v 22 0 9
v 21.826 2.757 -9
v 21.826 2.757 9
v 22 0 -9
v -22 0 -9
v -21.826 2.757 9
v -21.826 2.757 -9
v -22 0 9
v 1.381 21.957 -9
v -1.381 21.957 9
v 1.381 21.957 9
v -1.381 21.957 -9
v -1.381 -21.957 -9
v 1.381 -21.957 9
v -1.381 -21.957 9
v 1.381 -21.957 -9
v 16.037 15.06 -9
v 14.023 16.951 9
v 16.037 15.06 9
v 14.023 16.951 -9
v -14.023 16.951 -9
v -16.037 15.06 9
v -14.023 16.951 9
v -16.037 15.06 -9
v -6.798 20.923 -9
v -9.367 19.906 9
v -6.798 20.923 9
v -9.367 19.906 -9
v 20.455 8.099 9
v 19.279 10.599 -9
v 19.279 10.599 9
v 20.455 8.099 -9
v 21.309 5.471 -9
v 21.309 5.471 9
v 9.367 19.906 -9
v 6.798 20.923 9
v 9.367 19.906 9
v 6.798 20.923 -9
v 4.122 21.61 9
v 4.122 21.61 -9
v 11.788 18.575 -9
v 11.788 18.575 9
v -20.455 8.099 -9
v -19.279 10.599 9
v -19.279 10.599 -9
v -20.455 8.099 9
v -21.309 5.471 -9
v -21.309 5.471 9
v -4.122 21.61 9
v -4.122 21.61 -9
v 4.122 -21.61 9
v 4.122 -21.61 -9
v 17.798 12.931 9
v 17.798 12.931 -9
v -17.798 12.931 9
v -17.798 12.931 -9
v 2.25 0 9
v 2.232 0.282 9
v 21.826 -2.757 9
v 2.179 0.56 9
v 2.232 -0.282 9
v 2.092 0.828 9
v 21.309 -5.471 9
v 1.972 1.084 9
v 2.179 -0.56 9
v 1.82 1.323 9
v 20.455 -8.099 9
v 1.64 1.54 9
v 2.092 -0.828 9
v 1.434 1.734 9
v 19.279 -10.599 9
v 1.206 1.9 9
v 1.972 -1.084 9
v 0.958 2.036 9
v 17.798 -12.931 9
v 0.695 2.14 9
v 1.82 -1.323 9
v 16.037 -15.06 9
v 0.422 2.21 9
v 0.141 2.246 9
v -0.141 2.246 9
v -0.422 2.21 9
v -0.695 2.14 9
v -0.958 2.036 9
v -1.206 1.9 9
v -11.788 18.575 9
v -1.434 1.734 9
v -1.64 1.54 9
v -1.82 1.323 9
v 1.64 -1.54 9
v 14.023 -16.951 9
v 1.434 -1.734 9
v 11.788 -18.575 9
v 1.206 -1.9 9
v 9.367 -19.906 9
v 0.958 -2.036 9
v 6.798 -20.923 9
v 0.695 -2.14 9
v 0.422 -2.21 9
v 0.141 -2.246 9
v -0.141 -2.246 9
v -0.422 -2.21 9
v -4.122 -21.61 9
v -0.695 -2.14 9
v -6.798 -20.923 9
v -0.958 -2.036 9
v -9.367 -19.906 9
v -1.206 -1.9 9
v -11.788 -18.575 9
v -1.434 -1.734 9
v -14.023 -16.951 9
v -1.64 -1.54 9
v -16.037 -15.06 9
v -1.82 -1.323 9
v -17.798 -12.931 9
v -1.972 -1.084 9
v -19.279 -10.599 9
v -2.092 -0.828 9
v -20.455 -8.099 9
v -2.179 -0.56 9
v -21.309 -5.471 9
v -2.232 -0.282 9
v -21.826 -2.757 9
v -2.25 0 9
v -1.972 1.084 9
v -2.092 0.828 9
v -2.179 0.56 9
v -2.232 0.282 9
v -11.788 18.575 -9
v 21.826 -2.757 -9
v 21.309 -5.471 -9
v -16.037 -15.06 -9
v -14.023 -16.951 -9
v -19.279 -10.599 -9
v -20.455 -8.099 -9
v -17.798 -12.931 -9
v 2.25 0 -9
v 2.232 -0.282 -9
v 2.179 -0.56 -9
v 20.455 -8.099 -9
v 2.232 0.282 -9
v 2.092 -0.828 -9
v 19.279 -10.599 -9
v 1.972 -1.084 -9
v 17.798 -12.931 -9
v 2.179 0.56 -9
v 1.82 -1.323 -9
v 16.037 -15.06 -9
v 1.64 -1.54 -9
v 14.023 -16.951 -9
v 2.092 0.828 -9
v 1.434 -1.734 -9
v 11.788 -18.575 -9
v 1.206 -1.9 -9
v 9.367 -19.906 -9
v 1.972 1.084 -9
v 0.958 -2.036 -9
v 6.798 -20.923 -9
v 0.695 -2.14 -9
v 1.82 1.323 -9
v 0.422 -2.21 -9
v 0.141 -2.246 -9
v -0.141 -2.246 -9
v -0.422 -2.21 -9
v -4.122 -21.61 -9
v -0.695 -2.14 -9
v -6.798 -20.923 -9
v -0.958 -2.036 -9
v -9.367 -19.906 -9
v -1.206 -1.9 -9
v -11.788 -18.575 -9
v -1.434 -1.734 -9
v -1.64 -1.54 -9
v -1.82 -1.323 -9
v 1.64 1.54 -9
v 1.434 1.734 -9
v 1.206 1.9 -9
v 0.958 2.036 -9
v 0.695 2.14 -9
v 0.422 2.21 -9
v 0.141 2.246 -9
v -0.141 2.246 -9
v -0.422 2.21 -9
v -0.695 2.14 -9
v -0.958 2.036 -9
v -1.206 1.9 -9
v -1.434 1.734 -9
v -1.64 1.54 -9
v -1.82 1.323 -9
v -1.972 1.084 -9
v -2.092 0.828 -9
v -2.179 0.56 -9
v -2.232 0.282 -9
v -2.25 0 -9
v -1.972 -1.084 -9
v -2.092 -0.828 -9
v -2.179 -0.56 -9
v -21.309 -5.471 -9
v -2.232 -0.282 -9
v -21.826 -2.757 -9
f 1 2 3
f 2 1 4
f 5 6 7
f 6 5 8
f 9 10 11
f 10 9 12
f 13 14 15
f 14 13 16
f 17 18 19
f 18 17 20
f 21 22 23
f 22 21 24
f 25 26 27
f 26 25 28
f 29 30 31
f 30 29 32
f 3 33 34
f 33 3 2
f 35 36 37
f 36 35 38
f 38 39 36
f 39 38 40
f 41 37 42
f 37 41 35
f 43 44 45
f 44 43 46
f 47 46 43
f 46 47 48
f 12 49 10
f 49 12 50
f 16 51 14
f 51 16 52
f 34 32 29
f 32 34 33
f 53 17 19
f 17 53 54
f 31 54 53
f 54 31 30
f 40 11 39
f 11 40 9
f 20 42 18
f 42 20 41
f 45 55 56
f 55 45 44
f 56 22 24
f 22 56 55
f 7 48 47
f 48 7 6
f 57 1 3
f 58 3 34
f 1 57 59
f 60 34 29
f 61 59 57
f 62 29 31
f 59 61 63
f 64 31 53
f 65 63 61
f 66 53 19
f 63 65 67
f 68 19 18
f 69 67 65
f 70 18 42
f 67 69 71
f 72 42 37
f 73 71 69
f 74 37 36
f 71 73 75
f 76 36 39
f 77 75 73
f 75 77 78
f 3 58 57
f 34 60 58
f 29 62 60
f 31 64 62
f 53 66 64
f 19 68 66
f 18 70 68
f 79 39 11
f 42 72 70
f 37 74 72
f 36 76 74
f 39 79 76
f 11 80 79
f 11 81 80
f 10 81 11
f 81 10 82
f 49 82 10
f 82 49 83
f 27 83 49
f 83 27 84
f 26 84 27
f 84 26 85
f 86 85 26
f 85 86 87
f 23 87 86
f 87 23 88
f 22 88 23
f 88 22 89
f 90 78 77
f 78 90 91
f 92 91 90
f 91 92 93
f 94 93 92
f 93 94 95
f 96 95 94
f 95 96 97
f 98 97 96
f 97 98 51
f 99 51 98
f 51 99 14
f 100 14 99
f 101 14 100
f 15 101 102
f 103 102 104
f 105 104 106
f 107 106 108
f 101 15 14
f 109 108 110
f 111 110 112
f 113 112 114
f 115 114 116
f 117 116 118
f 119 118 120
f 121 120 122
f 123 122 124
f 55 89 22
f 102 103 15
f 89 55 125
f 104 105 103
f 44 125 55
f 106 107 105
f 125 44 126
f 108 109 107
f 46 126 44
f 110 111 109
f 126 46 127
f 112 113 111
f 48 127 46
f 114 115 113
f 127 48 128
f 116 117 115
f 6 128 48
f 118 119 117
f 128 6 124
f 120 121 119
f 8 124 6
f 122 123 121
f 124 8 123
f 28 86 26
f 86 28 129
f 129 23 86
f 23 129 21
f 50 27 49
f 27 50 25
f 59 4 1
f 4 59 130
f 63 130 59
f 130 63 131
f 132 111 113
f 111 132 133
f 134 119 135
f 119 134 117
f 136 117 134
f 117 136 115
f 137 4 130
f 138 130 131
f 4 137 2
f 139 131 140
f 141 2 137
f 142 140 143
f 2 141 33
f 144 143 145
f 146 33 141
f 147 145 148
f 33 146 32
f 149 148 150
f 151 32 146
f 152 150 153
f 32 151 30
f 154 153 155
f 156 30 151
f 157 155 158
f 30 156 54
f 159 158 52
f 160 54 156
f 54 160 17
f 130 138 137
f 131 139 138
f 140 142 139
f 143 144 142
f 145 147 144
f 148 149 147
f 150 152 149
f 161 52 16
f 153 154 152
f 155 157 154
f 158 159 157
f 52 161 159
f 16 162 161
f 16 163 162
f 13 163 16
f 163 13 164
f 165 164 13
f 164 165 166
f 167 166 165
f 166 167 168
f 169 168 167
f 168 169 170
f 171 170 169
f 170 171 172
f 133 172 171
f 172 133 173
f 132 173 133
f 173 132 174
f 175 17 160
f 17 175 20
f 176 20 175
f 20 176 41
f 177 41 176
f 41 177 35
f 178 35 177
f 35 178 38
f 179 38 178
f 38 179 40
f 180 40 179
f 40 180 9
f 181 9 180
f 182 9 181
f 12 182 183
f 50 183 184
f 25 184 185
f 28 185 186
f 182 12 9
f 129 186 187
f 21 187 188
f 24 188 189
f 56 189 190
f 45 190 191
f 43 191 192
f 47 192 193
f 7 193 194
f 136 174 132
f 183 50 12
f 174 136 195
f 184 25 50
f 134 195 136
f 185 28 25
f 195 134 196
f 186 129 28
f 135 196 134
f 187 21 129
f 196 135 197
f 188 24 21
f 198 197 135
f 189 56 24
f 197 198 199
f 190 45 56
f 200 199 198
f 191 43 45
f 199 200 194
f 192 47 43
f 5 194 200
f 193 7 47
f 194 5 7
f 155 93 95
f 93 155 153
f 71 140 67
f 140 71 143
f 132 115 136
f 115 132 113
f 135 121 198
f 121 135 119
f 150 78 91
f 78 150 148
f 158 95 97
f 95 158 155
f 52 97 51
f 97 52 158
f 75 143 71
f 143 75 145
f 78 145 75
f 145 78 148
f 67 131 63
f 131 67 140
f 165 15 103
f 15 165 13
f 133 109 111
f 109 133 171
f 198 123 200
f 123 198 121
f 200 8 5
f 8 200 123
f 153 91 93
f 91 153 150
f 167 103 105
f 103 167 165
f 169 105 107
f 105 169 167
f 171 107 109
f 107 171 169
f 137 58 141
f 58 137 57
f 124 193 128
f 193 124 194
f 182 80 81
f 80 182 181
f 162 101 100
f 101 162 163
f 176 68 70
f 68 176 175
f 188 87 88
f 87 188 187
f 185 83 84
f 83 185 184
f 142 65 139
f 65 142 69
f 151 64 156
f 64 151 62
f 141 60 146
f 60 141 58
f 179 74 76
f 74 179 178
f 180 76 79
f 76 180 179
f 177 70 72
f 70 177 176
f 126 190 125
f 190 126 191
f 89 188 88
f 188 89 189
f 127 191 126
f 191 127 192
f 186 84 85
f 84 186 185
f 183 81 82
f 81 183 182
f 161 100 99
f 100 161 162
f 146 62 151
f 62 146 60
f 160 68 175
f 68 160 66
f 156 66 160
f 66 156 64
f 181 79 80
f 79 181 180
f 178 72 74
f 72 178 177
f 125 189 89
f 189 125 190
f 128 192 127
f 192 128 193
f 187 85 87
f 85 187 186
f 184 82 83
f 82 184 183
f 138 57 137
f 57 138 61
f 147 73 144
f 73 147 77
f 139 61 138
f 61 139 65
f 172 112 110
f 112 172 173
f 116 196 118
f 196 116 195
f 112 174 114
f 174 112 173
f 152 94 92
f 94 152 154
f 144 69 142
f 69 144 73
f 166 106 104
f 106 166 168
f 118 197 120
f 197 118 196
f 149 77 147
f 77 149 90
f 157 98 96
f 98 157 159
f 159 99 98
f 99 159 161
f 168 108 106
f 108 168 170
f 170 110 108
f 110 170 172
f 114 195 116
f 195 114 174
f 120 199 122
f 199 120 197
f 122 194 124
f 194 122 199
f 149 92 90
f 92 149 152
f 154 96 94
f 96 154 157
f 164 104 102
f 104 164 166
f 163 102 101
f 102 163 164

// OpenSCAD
$fn = 50;


difference() {
	union() {
		translate(v = [0, 0, -9.0000000000]) {
			cylinder(h = 18, r = 22.0000000000);
		}
	}
	union() {
		translate(v = [0, 0, -100.0000000000]) {
			cylinder(h = 200, r = 2.2500000000);
		}
	}
}
